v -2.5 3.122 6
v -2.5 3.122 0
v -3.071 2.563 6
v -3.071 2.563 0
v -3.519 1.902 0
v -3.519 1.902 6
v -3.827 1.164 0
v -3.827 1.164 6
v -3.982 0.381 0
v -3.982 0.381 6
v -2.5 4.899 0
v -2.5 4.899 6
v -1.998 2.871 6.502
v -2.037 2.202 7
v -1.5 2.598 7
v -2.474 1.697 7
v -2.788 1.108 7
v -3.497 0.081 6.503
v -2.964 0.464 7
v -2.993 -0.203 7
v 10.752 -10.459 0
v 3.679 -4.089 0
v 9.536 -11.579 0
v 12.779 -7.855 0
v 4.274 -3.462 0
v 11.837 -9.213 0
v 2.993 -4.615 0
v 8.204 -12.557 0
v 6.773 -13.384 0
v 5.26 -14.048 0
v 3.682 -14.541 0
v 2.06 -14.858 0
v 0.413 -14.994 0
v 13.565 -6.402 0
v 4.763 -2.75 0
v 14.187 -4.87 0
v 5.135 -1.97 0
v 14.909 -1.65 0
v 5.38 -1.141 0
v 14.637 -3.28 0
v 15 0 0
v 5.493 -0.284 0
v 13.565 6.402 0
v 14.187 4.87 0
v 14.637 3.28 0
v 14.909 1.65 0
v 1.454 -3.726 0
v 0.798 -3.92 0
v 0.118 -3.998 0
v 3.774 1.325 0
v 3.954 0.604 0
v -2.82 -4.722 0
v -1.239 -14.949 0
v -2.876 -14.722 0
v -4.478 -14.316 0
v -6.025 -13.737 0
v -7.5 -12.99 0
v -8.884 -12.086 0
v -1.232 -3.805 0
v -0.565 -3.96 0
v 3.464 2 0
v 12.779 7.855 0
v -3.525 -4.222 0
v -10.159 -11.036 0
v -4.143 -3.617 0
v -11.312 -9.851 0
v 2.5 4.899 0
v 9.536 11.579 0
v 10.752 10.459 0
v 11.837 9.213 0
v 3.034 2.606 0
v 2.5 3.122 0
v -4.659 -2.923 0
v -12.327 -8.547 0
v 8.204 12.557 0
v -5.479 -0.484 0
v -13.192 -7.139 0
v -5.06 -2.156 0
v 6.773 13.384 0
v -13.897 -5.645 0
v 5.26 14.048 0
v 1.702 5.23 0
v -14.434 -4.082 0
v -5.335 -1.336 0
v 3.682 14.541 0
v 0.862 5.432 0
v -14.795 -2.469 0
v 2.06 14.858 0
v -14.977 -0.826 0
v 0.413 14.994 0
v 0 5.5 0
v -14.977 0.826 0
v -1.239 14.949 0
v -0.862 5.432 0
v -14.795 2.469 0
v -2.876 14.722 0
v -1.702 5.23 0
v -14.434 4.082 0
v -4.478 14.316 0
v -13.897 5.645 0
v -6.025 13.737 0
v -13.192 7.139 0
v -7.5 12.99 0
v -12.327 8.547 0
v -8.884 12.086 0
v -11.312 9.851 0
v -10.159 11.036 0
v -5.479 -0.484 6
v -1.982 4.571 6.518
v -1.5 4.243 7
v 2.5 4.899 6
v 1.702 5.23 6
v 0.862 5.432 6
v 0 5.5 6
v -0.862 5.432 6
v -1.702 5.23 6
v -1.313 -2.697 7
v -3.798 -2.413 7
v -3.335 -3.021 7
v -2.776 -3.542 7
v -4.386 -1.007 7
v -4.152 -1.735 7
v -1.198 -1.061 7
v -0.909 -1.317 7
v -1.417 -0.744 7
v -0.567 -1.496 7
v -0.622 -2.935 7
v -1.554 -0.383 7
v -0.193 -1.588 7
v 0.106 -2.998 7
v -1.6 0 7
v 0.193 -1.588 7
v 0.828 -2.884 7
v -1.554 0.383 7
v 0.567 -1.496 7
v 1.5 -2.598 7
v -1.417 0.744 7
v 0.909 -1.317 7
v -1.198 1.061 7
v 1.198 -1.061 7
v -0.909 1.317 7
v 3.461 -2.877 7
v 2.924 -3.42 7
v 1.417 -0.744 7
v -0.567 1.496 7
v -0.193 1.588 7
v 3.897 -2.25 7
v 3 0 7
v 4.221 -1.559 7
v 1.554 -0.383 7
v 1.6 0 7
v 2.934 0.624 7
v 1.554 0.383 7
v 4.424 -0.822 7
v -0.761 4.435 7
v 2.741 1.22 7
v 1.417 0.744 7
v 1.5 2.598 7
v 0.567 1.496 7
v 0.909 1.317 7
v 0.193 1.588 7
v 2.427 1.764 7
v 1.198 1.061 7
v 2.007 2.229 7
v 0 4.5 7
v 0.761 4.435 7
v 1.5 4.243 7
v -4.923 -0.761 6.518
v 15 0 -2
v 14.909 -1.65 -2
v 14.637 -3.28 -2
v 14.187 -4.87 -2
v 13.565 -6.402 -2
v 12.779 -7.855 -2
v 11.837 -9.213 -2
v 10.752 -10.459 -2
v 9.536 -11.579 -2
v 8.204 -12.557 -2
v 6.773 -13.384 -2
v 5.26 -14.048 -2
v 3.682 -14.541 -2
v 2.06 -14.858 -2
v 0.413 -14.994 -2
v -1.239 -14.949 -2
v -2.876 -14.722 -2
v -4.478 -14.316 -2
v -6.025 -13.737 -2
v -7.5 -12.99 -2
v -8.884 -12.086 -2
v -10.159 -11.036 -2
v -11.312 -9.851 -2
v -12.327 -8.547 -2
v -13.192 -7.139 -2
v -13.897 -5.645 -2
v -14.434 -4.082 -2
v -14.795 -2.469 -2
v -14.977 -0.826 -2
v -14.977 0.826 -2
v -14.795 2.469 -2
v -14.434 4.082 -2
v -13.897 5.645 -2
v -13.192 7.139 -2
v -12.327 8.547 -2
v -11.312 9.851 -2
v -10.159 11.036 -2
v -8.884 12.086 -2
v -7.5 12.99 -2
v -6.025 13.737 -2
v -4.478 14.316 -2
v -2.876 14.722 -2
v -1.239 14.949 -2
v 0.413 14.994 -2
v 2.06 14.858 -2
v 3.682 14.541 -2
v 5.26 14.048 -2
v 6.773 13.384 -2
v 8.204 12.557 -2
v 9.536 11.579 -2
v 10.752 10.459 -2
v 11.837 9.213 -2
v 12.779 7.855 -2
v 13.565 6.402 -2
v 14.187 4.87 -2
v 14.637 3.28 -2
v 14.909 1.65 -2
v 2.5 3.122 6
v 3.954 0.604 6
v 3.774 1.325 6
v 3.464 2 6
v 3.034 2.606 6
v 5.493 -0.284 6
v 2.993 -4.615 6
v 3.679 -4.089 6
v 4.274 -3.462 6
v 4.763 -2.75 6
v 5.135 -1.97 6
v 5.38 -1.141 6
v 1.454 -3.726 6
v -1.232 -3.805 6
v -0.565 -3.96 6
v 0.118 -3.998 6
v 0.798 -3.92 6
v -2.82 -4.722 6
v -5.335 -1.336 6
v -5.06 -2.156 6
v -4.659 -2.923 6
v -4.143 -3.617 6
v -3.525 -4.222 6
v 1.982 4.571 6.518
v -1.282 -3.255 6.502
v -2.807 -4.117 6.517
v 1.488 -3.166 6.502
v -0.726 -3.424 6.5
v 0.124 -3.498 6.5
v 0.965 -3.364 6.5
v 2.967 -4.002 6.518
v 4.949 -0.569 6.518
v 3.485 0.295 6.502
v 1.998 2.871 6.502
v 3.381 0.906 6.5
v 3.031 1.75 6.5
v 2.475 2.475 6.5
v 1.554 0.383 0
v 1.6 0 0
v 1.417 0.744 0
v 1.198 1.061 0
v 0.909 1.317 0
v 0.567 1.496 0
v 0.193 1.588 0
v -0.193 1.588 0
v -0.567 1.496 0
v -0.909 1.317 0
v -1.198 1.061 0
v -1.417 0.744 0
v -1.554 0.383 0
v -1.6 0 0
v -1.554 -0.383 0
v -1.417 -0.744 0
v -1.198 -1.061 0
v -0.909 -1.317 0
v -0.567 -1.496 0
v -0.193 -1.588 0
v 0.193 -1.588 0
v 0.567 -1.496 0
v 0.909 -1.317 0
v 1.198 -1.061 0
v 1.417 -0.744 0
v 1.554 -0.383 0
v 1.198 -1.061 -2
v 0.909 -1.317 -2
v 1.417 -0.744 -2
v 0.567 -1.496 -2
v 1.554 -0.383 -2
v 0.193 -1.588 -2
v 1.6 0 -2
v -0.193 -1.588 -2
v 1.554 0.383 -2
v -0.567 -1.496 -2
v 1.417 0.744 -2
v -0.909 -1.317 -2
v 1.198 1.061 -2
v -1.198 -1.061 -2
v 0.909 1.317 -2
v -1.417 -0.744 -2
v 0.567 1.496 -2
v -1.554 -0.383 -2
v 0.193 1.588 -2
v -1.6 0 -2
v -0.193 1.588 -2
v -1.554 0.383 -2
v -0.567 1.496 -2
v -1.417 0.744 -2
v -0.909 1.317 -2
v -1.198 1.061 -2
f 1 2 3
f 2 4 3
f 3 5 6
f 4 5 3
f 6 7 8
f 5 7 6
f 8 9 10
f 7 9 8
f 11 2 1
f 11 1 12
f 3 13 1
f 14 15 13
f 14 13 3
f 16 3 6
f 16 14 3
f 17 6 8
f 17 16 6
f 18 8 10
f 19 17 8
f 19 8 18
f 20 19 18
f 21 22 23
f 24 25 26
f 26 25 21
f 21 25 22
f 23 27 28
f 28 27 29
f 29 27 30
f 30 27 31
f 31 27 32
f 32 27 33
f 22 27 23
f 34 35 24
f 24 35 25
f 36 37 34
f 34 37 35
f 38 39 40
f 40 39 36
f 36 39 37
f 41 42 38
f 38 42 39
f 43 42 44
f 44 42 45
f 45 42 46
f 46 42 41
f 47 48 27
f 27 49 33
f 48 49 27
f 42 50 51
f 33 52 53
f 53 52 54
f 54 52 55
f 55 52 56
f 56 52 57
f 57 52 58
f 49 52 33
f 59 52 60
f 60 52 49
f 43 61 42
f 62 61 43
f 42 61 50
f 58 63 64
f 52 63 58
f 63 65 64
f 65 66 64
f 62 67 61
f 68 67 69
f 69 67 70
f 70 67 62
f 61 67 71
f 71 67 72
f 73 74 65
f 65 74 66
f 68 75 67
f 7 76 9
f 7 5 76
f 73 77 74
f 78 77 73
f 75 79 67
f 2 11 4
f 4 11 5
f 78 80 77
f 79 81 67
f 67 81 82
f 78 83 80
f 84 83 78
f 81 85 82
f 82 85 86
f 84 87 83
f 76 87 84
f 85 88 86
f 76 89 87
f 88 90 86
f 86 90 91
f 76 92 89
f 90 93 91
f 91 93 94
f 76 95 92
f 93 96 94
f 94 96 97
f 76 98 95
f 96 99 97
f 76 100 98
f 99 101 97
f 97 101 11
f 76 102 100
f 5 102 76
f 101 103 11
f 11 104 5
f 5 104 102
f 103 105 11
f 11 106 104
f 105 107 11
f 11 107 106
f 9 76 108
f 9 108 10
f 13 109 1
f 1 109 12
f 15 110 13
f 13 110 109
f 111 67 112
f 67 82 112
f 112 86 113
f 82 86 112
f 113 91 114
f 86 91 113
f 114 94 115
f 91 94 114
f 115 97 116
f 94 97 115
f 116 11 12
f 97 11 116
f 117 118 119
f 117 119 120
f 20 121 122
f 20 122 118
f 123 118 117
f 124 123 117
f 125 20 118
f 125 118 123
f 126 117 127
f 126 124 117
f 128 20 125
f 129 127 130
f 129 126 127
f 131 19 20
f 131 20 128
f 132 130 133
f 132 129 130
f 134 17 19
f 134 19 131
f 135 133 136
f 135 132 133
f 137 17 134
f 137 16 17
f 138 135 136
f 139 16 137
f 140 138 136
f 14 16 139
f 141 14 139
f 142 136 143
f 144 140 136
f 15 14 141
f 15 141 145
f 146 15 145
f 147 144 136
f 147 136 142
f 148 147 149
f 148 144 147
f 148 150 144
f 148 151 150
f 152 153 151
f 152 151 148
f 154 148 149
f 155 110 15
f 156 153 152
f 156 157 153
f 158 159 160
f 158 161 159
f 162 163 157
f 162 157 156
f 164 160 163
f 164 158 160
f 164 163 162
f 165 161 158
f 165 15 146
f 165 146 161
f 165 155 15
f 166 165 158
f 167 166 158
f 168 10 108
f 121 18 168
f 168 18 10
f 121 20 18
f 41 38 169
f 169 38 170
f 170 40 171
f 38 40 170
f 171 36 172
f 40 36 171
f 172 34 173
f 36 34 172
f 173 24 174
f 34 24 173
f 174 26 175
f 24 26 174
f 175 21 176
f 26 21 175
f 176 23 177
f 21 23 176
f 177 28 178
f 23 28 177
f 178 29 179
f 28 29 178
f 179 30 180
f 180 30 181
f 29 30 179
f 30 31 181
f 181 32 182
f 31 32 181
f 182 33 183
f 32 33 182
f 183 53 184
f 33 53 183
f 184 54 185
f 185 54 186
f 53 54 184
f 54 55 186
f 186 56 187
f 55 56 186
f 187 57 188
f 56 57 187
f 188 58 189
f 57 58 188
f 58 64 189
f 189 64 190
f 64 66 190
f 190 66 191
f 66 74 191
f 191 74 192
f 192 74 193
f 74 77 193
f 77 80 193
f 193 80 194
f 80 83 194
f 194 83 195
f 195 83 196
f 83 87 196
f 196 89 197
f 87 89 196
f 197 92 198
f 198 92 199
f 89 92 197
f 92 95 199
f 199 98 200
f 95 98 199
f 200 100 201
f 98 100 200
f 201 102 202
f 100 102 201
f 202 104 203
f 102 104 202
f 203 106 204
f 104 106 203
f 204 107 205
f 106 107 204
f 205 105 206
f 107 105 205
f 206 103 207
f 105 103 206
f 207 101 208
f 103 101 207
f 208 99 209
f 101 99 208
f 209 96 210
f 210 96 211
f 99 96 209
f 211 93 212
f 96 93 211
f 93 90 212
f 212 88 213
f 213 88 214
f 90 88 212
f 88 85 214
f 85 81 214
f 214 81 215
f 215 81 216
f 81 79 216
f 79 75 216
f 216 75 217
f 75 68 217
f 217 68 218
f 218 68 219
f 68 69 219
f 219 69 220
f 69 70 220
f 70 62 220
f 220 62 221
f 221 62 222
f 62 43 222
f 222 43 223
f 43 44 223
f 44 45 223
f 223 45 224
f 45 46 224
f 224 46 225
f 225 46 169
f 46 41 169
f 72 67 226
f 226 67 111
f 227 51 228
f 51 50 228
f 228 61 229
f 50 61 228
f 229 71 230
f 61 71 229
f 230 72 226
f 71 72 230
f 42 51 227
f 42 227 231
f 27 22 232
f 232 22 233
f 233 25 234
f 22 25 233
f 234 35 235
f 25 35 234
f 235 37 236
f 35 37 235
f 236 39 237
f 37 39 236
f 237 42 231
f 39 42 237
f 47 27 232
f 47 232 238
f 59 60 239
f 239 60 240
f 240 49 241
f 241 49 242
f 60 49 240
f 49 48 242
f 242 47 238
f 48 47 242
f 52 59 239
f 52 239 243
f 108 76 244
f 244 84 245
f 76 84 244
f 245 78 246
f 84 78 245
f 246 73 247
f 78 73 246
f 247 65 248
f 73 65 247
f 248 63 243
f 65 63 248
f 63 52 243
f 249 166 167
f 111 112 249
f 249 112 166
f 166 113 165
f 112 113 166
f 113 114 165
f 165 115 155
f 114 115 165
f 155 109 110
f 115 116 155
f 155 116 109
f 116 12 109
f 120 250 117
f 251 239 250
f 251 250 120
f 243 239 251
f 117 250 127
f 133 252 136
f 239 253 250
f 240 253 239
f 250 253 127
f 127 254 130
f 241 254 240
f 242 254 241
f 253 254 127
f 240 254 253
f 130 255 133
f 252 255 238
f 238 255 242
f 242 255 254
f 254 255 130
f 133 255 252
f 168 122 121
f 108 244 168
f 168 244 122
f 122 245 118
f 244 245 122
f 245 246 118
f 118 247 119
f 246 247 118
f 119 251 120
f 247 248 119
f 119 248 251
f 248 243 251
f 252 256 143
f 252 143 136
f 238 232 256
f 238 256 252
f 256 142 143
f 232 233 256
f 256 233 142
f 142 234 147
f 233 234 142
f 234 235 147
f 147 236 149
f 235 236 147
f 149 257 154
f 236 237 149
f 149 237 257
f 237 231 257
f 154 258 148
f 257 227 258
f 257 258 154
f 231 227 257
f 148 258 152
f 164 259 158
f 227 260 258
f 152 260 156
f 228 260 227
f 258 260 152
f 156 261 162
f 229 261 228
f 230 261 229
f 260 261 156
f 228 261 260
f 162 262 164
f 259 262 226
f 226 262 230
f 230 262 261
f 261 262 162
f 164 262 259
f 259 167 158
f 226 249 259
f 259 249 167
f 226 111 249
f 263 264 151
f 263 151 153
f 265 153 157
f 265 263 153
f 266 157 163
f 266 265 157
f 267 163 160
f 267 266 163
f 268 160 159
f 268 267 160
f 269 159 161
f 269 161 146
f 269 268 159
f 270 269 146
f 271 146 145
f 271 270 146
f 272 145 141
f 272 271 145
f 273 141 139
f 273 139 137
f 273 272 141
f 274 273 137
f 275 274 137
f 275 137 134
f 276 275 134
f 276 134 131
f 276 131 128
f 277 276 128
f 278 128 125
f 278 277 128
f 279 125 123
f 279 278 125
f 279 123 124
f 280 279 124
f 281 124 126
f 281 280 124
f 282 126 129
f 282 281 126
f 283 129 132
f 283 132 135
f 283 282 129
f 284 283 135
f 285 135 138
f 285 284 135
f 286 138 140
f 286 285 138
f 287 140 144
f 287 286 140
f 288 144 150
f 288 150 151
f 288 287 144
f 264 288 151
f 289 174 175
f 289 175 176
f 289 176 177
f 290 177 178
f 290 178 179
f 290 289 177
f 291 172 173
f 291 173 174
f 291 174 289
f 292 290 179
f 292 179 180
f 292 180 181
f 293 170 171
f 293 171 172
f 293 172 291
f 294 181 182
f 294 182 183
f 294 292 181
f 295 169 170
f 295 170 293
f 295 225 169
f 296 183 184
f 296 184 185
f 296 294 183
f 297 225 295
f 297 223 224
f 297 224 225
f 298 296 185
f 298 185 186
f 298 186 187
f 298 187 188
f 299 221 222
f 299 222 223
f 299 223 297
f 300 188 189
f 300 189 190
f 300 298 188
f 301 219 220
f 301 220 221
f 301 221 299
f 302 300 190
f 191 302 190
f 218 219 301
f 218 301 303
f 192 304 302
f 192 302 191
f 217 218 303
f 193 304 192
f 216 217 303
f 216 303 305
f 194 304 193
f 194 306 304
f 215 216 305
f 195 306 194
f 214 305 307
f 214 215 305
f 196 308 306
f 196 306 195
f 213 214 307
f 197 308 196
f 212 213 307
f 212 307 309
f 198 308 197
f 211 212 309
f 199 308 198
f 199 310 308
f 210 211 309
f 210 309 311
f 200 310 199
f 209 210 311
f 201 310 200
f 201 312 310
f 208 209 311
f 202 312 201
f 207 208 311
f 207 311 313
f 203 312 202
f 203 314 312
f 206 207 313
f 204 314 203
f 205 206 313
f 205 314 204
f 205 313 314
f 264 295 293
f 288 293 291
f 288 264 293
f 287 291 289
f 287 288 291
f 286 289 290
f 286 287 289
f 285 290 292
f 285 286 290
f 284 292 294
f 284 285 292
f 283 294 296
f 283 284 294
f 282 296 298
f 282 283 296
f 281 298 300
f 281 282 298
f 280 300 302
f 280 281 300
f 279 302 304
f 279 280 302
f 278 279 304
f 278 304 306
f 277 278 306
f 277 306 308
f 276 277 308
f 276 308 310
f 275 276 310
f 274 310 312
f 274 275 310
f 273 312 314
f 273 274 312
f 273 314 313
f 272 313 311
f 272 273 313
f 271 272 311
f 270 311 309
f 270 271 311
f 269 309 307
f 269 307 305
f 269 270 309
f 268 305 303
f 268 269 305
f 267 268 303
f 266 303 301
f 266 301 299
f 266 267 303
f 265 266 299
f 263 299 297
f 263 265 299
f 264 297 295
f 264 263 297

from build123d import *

# Parameters (mm, degrees)
SKETCH_R      = 1.6
PAD_DEPTH     = 7
SKETCH001_R   = 15
SKETCH001_R_2 = 1.6
PAD001_DEPTH  = 2
CHAMFER_SIZE  = 1


with BuildPart() as part:
    # Sketch → Pad (new body)
    with BuildSketch(Plane.XY):
        with BuildLine():
            ThreePointArc((-2.5, 3.122499), (-3.518971, 1.901799), (-3.981855, 0.380567))
            Line((-5.478695, -0.483634), (-3.981855, 0.380567))
            ThreePointArc((-5.478695, -0.483634), (-4.659167, -2.922699), (-2.81991, -4.722087))
            Line((-1.232265, -3.80546), (-2.81991, -4.722087))
            ThreePointArc((-1.232265, -3.80546), (0.117848, -3.998264), (1.454262, -3.726275))
            Line((2.992718, -4.614503), (1.454262, -3.726275))
            ThreePointArc((2.992718, -4.614503), (4.763149, -2.749985), (5.492638, -0.284484))
            Line((3.954108, 0.604177), (5.492638, -0.284484))
            ThreePointArc((3.954108, 0.604177), (3.46401, 2.000159), (2.5, 3.122499))
            Line((2.5, 3.122499), (2.5, 4.898979))
            ThreePointArc((2.5, 4.898979), (0, 5.5), (-2.5, 4.898979))
            Line((-2.5, 3.122499), (-2.5, 4.898979))
        make_face()
        Circle(SKETCH_R, mode=Mode.SUBTRACT)
    extrude(amount=PAD_DEPTH)

    # Sketch001 (on Face14 of Pad) → Pad001 (join)
    with BuildSketch(Plane(origin=(0, 0, 0), x_dir=(1, 0, 0), z_dir=(0, 0, -1))):
        Circle(SKETCH001_R)
        Circle(SKETCH001_R_2, mode=Mode.SUBTRACT)
    extrude(amount=PAD001_DEPTH)

    # Chamfer
    chamfer_edges = [part.edges().sort_by_distance(p)[0] for p in [
        (-2.026088, -4.263773, 7),
        (0.117848, -3.998264, 7),
        (2.22349, -4.170389, 7),
        (4.763149, -2.749985, 7),
        (3.46401, 2.000159, 7),
        (4.723373, 0.159847, 7),
        (2.5, 4.010739, 7),
        (0, 5.5, 7),
        (-2.5, 4.010739, 7),
        (-3.518971, 1.901799, 7),
        (-4.730275, -0.051534, 7),
        (-4.659167, -2.922699, 7),
    ]]
    chamfer(chamfer_edges, length=CHAMFER_SIZE)


solid = part.part
